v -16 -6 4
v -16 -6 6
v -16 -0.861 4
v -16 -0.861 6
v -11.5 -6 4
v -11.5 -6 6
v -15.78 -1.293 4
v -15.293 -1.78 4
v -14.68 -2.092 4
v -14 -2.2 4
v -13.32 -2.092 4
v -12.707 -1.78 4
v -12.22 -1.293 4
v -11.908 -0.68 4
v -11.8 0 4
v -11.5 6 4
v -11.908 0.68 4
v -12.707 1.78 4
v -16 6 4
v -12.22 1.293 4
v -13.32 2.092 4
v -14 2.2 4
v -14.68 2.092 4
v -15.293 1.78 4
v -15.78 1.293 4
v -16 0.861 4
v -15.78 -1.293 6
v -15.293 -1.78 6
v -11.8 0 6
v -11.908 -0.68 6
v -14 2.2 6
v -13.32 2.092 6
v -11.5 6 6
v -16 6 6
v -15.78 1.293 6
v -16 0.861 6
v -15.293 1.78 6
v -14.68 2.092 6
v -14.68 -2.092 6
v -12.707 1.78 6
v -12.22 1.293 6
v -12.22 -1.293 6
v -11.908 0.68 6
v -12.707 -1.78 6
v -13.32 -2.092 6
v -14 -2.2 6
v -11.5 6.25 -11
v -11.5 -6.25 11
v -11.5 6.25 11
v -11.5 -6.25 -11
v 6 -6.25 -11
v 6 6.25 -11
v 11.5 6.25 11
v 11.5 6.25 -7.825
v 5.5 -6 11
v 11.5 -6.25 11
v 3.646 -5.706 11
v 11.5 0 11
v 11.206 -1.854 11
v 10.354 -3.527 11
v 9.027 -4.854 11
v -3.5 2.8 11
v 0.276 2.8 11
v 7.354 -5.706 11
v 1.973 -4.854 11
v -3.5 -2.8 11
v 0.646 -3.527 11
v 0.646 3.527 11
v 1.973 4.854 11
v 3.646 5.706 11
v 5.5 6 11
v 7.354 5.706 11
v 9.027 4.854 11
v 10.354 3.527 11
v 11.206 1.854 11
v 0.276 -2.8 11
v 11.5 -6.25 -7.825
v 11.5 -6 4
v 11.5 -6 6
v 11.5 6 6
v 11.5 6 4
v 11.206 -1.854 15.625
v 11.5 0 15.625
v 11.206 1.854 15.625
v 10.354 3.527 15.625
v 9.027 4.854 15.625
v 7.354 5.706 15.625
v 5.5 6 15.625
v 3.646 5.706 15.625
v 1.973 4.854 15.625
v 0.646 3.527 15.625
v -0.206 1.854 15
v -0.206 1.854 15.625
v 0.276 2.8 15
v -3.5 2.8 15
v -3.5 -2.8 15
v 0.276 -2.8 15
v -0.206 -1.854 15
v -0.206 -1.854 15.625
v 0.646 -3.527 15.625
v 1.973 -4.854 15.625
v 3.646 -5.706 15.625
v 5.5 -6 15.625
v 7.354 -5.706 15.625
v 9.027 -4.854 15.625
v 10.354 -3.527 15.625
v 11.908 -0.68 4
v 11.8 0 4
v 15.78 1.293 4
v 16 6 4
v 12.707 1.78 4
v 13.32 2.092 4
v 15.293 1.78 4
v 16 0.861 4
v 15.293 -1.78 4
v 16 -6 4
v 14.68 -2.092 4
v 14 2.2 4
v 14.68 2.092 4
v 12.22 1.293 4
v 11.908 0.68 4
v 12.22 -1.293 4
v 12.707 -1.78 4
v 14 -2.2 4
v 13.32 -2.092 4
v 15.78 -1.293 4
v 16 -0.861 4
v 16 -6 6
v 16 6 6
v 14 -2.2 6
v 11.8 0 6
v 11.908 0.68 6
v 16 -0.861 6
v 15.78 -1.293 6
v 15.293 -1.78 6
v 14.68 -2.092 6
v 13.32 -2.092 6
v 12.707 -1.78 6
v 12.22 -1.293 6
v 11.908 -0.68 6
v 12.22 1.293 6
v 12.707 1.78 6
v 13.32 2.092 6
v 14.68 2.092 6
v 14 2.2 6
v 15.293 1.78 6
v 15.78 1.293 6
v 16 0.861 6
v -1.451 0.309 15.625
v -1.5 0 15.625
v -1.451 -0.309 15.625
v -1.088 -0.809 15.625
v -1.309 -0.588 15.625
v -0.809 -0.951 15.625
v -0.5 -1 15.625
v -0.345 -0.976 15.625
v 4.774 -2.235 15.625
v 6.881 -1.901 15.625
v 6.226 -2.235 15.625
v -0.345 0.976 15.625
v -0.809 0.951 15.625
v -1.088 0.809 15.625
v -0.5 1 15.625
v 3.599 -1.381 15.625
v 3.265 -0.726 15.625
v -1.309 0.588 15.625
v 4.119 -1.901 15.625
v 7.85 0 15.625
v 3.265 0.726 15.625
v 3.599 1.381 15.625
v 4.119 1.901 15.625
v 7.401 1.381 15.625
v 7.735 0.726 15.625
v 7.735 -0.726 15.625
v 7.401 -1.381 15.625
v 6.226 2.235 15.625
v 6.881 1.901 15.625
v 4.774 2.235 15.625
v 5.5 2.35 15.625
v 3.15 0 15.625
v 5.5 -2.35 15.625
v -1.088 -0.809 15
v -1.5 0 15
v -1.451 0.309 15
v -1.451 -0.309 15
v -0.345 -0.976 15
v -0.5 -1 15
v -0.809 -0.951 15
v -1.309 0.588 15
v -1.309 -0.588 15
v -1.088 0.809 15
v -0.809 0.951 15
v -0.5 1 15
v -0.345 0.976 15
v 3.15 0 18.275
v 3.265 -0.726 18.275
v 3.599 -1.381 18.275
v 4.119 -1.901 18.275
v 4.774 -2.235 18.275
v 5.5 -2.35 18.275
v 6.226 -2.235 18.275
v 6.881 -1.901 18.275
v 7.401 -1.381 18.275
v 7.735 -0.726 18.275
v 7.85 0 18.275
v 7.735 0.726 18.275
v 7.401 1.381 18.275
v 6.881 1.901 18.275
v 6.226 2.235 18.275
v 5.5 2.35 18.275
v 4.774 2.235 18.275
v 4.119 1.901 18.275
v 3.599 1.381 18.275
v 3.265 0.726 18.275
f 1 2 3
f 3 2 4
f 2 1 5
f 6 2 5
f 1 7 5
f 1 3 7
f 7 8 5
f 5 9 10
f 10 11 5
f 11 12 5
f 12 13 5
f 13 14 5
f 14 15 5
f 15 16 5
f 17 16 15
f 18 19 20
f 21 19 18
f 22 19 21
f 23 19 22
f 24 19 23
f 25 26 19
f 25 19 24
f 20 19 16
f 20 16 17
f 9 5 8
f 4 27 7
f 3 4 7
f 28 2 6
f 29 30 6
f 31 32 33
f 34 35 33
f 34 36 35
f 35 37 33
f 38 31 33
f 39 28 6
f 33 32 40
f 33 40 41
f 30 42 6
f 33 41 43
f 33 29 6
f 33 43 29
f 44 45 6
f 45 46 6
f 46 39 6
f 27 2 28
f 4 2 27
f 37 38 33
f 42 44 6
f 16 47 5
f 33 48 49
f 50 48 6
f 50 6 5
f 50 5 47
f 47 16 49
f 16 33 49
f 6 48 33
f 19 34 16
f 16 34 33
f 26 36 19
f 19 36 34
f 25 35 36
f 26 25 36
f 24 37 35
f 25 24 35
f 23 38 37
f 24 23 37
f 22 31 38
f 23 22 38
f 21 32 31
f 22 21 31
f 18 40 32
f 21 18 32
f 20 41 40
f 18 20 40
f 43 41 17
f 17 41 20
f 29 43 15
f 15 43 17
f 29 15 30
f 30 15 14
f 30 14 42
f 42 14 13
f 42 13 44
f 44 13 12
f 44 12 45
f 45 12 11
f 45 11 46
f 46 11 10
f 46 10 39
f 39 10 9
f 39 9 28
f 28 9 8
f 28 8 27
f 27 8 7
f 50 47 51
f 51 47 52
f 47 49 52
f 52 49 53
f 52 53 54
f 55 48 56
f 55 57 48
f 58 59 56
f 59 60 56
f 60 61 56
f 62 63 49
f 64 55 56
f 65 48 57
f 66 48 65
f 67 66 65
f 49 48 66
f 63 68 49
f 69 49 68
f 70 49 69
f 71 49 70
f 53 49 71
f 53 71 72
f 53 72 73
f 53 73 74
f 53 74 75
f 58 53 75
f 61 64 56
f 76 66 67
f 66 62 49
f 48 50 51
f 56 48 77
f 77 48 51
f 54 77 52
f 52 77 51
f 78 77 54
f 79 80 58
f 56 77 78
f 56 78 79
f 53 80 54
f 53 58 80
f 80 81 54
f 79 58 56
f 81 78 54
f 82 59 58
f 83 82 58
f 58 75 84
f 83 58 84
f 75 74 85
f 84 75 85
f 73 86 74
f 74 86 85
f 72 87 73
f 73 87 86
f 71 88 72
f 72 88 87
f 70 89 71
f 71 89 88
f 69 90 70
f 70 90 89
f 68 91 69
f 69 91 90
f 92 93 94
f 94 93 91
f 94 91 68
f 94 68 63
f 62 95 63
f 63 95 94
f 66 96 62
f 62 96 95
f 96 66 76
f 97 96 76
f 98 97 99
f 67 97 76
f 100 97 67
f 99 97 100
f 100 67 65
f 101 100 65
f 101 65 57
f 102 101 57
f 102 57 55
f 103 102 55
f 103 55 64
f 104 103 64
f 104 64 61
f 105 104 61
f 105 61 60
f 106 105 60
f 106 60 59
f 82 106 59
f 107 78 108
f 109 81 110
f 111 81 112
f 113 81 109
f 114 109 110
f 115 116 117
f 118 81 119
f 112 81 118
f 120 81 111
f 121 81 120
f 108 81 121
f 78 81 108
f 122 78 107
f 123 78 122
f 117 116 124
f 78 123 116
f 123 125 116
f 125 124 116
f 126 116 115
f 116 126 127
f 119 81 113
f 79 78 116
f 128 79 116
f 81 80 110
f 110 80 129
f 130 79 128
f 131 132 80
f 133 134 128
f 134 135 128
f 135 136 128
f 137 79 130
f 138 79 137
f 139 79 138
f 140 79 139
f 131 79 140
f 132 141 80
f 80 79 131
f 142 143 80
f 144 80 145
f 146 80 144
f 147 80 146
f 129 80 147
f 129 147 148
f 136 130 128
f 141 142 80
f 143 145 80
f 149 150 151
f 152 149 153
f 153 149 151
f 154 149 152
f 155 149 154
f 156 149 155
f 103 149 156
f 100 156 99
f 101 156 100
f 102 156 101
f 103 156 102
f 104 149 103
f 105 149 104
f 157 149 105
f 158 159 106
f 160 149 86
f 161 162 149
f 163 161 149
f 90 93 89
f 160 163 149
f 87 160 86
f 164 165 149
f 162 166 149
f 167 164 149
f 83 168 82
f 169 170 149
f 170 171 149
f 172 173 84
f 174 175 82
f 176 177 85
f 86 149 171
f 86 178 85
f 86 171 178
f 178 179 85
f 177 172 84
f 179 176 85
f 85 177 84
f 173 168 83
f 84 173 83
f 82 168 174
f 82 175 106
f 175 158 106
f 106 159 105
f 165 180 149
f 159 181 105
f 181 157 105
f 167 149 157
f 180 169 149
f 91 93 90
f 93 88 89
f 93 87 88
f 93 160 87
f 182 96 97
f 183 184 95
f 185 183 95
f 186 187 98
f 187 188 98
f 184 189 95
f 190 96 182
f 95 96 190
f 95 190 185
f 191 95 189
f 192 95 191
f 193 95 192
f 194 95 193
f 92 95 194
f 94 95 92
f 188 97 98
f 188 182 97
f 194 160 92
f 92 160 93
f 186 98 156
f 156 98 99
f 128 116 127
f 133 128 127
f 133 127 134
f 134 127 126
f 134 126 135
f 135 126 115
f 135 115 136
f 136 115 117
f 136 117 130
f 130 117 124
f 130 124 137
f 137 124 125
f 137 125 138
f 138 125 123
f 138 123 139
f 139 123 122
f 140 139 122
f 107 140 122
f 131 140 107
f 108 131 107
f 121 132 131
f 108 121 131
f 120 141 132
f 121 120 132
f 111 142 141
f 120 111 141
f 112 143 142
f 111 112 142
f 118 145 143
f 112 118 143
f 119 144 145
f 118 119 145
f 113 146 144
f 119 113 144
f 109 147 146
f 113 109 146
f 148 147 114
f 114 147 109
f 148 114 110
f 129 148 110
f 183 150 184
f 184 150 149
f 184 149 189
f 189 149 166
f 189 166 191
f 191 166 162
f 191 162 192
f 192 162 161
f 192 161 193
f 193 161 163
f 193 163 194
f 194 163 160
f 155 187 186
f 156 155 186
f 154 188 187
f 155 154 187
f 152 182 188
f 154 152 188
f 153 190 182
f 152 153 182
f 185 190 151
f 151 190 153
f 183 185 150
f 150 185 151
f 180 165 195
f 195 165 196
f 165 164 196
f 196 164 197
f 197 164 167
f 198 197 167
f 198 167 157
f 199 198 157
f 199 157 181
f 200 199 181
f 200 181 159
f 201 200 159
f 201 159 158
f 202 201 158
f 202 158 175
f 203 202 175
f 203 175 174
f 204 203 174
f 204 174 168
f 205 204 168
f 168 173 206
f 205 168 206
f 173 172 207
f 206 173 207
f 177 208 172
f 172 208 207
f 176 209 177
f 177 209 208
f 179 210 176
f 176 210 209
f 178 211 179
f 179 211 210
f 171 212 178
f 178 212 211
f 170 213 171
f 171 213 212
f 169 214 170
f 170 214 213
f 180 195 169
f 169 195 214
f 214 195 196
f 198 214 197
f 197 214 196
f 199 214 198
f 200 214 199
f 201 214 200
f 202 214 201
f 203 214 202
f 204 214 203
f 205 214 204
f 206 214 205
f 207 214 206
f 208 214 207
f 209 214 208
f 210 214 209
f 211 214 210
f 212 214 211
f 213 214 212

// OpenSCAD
9g_motor();

module 9g_motor(){
	difference(){			
		union(){
			color("steel blue") cube([23,12.5,22], center=true);
			color("steel blue") translate([0,0,5]) cube([32,12,2], center=true);
			color("steel blue") translate([5.5,0,2.75]) cylinder(r=6, h=25.75, $fn=20, center=true);
			color("steel blue") translate([-.5,0,2.75]) cylinder(r=1, h=25.75, $fn=20, center=true);
			color("steel blue") translate([-1,0,2.75]) cube([5,5.6,24.5], center=true);		
			color("white") translate([5.5,0,3.65]) cylinder(r=2.35, h=29.25, $fn=20, center=true);				
		}
		translate([10,0,-11]) rotate([0,-30,0]) cube([8,13,4], center=true);
		for ( hole = [14,-14] ){
			translate([hole,0,5]) cylinder(r=2.2, h=4, $fn=20, center=true);
		}	
	}
}
